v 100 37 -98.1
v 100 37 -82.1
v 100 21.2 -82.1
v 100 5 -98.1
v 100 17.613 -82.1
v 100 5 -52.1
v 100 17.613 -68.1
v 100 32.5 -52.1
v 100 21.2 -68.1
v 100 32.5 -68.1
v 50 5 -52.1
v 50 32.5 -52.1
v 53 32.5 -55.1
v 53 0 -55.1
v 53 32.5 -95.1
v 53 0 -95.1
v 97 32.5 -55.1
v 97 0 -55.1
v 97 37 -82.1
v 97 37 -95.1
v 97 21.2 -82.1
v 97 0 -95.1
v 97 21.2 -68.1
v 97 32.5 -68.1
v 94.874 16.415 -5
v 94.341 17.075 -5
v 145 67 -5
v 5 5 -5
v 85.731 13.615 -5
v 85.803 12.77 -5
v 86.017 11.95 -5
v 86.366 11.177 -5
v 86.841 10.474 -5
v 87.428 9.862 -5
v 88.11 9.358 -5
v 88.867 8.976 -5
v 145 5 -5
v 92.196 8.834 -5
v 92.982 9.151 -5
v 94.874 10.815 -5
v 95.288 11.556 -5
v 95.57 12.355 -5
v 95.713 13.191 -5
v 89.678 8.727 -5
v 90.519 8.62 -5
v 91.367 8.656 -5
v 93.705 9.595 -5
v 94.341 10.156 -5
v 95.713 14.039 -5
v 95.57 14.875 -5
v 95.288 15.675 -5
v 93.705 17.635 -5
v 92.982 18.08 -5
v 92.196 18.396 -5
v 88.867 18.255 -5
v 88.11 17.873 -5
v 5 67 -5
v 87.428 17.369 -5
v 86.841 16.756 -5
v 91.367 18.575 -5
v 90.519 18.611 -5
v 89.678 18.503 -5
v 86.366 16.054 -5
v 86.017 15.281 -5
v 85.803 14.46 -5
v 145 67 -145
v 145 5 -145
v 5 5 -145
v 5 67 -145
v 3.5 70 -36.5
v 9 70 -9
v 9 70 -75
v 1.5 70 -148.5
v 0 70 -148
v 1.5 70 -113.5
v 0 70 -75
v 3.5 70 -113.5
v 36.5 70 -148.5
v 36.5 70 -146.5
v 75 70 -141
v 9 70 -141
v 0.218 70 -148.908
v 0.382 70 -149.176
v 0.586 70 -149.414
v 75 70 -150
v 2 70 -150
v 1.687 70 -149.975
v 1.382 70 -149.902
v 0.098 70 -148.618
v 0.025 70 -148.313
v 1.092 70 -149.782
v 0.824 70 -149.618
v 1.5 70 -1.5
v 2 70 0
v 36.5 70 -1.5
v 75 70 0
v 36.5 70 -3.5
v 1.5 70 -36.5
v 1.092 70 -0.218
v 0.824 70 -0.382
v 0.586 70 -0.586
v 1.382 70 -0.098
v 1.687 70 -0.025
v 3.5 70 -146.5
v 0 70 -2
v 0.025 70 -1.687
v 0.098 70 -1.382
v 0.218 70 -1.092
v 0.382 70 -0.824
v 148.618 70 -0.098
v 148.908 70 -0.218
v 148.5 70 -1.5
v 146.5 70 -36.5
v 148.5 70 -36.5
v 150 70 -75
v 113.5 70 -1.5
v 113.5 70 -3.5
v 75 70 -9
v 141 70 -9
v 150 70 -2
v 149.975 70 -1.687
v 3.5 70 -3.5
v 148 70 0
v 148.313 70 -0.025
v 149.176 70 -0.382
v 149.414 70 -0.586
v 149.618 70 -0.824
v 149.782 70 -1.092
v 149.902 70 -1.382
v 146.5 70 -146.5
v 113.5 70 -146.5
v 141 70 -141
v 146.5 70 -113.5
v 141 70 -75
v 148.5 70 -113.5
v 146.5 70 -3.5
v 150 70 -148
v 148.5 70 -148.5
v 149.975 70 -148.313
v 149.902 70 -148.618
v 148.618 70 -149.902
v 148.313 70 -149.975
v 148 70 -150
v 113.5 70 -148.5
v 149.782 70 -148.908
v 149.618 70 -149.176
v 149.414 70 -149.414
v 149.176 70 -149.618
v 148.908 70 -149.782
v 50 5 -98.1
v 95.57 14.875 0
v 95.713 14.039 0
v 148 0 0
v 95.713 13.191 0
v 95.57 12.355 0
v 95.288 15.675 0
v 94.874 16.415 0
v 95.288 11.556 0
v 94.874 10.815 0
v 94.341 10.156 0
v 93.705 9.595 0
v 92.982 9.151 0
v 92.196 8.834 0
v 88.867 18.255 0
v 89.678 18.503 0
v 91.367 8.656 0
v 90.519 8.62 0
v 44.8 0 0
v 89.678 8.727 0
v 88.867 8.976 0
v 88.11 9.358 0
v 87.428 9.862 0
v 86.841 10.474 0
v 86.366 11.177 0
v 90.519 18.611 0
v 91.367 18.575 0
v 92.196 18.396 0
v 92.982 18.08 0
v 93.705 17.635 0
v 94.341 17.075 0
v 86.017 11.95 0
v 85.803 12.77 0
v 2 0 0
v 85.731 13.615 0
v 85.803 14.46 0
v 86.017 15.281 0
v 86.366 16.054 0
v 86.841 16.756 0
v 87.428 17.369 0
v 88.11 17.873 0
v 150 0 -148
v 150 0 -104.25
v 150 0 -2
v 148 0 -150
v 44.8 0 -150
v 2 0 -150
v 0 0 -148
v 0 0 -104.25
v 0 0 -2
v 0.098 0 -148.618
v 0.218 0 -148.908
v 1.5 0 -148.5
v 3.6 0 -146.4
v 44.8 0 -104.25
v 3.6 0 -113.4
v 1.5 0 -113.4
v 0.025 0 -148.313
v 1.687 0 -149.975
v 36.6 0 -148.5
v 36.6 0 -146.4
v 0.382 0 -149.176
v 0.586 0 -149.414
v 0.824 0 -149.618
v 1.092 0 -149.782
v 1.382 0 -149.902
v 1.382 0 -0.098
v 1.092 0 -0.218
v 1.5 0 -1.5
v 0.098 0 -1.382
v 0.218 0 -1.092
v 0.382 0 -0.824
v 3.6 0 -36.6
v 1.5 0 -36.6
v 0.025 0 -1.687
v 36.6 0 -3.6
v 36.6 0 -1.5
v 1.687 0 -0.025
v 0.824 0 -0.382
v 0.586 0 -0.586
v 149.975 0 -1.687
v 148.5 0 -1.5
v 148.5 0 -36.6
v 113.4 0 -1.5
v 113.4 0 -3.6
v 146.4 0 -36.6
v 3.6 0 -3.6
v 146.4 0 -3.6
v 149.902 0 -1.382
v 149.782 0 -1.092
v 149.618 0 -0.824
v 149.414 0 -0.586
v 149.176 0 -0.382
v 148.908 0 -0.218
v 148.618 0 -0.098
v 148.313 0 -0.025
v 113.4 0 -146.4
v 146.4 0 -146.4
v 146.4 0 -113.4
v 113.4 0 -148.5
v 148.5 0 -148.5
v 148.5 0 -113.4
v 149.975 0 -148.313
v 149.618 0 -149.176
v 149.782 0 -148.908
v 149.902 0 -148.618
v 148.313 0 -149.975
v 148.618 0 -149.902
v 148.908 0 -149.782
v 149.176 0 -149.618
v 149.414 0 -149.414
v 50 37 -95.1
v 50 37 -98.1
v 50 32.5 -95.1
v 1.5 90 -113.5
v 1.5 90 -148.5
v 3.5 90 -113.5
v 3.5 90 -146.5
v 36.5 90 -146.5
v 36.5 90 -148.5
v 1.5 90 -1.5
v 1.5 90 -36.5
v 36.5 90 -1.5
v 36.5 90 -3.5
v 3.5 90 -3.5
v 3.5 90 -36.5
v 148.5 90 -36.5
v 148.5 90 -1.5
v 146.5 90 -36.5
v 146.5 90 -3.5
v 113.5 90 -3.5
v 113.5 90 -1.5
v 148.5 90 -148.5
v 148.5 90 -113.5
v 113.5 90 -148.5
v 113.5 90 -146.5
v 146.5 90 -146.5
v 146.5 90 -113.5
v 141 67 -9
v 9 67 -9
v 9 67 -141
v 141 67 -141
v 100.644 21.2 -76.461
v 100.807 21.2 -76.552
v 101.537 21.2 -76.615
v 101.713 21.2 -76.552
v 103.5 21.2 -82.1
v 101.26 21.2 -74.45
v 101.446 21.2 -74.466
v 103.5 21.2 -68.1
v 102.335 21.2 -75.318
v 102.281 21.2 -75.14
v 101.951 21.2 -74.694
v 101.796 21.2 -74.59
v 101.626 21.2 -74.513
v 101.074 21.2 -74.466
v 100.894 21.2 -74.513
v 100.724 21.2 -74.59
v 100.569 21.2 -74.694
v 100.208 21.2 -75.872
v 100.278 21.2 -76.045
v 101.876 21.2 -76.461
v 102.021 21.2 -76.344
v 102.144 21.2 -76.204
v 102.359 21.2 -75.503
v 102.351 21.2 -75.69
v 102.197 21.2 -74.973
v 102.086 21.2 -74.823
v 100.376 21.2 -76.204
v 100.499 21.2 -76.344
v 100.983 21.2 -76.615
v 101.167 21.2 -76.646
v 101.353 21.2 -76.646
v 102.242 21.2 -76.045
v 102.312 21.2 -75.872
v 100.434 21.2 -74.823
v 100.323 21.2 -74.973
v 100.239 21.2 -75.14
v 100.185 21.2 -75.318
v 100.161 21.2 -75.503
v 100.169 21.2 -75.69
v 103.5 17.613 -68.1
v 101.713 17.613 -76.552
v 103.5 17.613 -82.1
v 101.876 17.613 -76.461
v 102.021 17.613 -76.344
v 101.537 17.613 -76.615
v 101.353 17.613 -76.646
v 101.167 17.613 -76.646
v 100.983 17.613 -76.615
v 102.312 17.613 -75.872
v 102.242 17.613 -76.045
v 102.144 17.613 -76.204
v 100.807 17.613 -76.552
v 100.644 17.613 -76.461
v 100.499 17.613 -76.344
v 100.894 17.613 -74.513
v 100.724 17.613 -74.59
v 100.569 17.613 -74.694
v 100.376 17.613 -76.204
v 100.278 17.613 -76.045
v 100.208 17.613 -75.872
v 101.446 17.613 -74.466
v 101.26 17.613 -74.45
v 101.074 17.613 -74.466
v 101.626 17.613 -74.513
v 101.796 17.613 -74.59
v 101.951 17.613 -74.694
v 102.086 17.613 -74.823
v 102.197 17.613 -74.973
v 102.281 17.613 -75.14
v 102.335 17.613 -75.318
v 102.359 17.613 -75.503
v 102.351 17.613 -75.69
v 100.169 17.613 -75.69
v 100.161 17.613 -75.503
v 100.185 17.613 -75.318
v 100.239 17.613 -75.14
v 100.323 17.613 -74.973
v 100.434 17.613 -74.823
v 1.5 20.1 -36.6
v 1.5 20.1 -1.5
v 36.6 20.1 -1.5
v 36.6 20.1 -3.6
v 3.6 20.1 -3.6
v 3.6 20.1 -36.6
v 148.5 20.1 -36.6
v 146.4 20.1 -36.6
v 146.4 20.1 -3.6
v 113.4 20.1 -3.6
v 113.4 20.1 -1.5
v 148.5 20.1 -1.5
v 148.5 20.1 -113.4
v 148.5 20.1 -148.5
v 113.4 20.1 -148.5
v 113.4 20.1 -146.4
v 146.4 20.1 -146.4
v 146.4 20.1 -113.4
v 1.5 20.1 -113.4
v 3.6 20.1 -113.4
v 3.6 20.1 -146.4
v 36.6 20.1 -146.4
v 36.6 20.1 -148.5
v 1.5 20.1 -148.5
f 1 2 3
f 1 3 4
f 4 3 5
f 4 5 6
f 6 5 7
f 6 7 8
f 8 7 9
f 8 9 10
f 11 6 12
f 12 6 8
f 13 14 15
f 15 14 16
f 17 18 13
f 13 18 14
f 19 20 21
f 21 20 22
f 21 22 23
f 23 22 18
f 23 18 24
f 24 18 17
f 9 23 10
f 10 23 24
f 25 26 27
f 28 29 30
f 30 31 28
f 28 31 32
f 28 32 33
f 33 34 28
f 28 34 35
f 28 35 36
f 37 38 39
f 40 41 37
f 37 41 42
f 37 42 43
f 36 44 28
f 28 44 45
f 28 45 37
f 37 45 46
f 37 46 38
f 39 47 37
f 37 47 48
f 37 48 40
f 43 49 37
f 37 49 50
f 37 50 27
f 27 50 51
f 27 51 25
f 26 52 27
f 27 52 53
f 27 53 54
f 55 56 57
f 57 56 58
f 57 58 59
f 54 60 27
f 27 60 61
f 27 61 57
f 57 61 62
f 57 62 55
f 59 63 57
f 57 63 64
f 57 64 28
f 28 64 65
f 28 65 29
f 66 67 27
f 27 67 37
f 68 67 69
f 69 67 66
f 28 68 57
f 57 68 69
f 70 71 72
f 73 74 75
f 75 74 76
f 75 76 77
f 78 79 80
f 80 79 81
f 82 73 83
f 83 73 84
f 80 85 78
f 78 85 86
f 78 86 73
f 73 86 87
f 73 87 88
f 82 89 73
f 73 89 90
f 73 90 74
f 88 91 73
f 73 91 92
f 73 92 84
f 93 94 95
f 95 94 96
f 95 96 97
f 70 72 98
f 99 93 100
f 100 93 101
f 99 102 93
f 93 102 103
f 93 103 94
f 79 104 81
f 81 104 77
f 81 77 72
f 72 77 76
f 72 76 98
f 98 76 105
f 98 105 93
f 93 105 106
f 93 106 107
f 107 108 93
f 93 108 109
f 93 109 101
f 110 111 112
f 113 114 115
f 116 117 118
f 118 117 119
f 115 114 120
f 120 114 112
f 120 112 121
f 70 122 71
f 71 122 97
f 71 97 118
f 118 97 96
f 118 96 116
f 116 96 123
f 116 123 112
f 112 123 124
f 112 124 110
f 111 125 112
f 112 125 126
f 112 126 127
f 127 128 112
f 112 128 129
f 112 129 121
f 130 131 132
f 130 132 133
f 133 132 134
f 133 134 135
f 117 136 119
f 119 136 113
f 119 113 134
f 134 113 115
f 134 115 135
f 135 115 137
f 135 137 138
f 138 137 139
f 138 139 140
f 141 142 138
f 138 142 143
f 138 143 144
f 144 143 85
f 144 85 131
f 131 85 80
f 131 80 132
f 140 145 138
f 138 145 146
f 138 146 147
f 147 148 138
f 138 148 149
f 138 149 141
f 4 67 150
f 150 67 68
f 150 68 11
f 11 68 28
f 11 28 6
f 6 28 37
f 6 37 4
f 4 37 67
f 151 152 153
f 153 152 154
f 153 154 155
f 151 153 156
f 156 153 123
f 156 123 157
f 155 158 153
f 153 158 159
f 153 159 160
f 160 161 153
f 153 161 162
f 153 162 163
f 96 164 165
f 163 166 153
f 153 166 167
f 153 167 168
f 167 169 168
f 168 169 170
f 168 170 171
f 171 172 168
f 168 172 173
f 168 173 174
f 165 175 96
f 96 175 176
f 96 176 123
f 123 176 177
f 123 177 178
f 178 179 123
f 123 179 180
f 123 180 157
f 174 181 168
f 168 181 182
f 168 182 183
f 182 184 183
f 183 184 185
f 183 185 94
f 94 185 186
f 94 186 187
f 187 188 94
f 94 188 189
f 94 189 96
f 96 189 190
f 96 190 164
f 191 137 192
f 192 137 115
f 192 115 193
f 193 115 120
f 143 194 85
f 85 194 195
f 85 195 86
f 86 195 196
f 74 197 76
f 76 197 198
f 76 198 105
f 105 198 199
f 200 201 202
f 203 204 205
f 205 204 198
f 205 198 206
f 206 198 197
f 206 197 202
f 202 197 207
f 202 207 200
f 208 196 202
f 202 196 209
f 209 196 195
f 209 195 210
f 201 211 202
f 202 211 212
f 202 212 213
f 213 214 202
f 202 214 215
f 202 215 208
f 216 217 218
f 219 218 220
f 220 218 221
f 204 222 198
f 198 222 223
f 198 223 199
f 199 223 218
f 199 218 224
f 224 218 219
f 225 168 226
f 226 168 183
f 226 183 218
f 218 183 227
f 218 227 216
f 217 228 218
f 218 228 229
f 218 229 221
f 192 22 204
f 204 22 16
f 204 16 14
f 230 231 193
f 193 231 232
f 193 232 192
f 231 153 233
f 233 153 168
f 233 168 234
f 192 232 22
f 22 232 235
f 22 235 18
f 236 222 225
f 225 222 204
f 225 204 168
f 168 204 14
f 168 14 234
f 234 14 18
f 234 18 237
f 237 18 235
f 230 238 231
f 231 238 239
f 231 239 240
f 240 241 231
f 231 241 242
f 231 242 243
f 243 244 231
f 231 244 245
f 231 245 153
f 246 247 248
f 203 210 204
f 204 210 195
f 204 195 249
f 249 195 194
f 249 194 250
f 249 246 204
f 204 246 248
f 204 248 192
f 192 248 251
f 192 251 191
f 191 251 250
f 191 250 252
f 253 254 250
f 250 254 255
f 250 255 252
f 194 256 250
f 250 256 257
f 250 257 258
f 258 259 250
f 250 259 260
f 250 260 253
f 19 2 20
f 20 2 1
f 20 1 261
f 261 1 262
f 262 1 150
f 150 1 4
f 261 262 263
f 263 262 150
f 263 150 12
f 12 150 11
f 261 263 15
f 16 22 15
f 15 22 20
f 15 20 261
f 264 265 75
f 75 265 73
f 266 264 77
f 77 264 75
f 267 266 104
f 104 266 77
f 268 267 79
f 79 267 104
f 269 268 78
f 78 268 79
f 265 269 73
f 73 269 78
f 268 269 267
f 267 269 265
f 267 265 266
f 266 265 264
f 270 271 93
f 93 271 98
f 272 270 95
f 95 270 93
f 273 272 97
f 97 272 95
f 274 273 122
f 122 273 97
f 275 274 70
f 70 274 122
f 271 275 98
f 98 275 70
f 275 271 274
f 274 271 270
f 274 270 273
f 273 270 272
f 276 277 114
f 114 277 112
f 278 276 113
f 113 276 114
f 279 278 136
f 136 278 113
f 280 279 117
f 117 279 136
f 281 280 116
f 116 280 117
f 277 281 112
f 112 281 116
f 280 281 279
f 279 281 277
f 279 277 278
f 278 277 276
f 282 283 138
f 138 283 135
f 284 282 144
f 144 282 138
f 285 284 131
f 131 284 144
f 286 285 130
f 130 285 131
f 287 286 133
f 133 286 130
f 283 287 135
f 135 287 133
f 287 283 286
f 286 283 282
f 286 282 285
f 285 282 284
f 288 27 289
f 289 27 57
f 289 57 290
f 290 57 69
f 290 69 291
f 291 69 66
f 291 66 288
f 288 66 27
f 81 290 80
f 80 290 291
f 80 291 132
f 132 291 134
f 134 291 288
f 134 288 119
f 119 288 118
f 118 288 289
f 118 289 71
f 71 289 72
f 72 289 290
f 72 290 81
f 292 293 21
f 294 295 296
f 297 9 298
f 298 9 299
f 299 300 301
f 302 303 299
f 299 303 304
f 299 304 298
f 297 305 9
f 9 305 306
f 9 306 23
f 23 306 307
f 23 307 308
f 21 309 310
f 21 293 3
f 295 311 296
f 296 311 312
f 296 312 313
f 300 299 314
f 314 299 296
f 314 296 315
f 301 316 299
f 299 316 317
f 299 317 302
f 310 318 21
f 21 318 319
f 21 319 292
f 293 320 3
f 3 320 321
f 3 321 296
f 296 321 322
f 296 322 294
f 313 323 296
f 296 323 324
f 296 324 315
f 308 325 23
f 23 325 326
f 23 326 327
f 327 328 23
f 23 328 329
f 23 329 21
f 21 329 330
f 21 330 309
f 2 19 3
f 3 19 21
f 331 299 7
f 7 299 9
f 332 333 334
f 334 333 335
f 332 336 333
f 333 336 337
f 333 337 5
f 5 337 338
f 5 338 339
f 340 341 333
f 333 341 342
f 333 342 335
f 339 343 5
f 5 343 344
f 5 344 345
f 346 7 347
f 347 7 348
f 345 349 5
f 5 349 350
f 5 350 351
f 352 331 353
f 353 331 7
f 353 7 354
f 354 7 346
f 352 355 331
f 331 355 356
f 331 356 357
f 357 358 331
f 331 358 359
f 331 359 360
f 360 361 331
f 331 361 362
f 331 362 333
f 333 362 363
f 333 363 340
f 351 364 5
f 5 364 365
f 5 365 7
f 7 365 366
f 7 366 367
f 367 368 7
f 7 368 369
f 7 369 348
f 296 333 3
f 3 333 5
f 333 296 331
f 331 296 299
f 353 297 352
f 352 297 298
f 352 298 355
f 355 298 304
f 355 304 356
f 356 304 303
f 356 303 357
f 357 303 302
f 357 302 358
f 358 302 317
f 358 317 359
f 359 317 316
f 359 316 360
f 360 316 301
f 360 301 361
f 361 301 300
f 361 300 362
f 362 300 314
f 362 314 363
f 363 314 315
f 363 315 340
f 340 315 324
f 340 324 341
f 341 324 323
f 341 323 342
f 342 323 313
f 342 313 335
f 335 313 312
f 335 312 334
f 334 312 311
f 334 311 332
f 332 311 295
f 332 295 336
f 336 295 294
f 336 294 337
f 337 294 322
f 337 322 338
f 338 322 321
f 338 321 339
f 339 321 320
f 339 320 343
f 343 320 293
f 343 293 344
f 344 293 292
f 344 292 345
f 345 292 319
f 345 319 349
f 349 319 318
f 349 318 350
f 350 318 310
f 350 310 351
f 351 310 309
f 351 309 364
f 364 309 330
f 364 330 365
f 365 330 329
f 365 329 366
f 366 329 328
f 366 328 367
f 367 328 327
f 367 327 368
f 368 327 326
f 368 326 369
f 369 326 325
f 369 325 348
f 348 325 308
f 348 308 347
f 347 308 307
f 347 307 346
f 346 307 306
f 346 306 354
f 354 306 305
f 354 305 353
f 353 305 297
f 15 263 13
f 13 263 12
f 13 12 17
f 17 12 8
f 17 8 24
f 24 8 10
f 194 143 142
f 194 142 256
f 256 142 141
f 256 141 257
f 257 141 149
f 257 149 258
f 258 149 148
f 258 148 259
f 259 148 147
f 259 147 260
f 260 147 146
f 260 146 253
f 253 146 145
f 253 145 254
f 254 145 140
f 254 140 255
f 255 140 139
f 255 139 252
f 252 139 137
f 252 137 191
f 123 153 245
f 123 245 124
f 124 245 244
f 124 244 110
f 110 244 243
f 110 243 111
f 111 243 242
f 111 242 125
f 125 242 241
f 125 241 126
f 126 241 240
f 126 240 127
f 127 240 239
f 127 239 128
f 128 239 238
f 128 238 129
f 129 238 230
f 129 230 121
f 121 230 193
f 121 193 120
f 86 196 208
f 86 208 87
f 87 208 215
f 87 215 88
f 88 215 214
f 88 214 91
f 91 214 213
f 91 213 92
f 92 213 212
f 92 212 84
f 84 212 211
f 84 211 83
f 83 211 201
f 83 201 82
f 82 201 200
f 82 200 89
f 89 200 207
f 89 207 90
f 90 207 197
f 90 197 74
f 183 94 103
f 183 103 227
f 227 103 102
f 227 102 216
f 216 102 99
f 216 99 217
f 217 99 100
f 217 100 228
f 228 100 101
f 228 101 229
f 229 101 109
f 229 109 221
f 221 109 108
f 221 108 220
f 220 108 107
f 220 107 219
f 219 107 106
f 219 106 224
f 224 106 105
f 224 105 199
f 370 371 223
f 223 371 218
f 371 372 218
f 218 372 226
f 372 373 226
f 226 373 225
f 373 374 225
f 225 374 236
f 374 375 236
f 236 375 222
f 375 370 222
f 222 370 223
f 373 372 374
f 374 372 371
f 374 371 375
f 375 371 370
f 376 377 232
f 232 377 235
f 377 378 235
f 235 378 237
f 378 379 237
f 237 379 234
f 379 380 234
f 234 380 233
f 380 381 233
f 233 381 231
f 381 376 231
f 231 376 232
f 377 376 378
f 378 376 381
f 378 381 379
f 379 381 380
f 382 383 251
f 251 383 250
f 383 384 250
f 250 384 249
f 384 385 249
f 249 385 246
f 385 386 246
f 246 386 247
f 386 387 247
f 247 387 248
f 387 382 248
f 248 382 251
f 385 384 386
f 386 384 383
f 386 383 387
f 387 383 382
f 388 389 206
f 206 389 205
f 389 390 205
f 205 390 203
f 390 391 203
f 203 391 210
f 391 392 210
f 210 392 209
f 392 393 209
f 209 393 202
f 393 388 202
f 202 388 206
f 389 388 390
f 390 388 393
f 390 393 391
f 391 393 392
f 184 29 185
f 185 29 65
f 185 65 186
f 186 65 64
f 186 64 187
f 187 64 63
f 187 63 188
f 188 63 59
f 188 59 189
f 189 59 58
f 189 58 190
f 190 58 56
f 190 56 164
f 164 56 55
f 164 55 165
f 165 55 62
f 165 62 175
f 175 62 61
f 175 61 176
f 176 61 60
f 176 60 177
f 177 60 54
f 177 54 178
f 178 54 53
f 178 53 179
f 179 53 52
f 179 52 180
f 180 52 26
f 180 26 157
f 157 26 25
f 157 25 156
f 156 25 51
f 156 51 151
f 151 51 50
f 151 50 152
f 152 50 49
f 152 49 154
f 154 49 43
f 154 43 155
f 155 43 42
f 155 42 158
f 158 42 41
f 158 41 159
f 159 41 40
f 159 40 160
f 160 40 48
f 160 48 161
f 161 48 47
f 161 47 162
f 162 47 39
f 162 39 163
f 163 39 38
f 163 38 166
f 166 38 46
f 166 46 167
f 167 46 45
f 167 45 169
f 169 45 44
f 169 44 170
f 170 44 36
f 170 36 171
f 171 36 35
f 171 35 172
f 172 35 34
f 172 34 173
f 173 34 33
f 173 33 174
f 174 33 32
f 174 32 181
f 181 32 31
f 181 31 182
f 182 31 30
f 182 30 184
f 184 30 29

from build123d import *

# Parameters (mm, degrees)
SKETCH1_W           = 150
SKETCH1_H           = 150
BOSS_EXTRUDE1_DEPTH = 70
SHELL1_T            = -5
SKETCH2_W           = 50
SKETCH2_H           = 46
SKETCH2_W_2         = 44
SKETCH2_H_2         = 40
BOSS_EXTRUDE2_DEPTH = 32
CUT_EXTRUDE4_REACH  = 223.867
SKETCH5_W           = 44
SKETCH5_H           = 40
BOSS_EXTRUDE3_DEPTH = 20
SKETCH7_W           = 140
SKETCH7_H           = 140
SKETCH7_W_2         = 132
SKETCH7_H_2         = 132
BOSS_EXTRUDE4_DEPTH = 3
CUT_EXTRUDE5_REACH  = 203.494
SKETCH9_W           = 14
SKETCH9_H           = 15.8
SKETCH10_W          = 14
SKETCH10_H          = 3.5874966
BOSS_EXTRUDE5_DEPTH = 3.5
CUT_EXTRUDE6_REACH  = 225.01
SKETCH11_R          = 1.1
CUT_EXTRUDE8_DEPTH  = 4.5
FILLET1_R           = 2
CUT_EXTRUDE9_DEPTH  = 20.1
SKETCH14_R          = 5
CUT_EXTRUDE11_DEPTH = 20.1


with BuildPart() as part:
    # Sketch1 → Boss-Extrude1 (new body)
    with BuildSketch(Plane(origin=(0, 0, 0), x_dir=(1, 0, 0), z_dir=(0, 1, 0))):
        with Locations((75, 75)):
            Rectangle(SKETCH1_W, SKETCH1_H)
    extrude(amount=BOSS_EXTRUDE1_DEPTH)

    # Shell1
    shell1_openings = [part.faces().sort_by_distance(p)[0] for p in [
        (75, 70, -75),
    ]]
    offset(amount=SHELL1_T, openings=shell1_openings, kind=Kind.INTERSECTION)

    # Sketch2 → Boss-Extrude2 (add)
    with BuildSketch(Plane(origin=(0, 5, 0), x_dir=(1, 0, 0), z_dir=(0, 1, 0))):
        with Locations((75, 75.1)):
            Rectangle(SKETCH2_W, SKETCH2_H)
        with Locations((75, 75.1)):
            Rectangle(SKETCH2_W_2, SKETCH2_H_2, mode=Mode.SUBTRACT)
    extrude(amount=BOSS_EXTRUDE2_DEPTH)

    # Sketch5 → Cut-Extrude4 (cut, up to next)
    with BuildSketch(Plane(origin=(0, 5, 0), x_dir=(1, 0, 0), z_dir=(0, 1, 0)), mode=Mode.PRIVATE) as cut_extrude4_sk1:
        with Locations((75, 75.1)):
            Rectangle(SKETCH5_W, SKETCH5_H)
    cut_extrude4_tool1 = extrude(cut_extrude4_sk1.sketch, amount=-CUT_EXTRUDE4_REACH, mode=Mode.PRIVATE) & part.part
    add(cut_extrude4_tool1.solids().sort_by_distance((75, 5, -75.1))[0], mode=Mode.SUBTRACT)

    # Sketch6 → Boss-Extrude3 (add)
    with BuildSketch(Plane(origin=(0, 70, 0), x_dir=(1, 0, 0), z_dir=(0, 1, 0))):
        Polygon((1.5, 113.5), (1.5, 148.5), (36.5, 148.5), (36.5, 146.5), (3.5, 146.5), (3.5, 113.5), align=None)
        Polygon((1.5, 36.5), (1.5, 1.5), (36.5, 1.5), (36.5, 3.5), (3.5, 3.5), (3.5, 36.5), align=None)
        Polygon((148.5, 36.5), (148.5, 1.5), (113.5, 1.5), (113.5, 3.5), (146.5, 3.5), (146.5, 36.5), align=None)
        Polygon((148.5, 113.5), (148.5, 148.5), (113.5, 148.5), (113.5, 146.5), (146.5, 146.5), (146.5, 113.5), align=None)
    extrude(amount=BOSS_EXTRUDE3_DEPTH)

    # Sketch7 → Boss-Extrude4 (add)
    with BuildSketch(Plane(origin=(0, 70, 0), x_dir=(1, 0, 0), z_dir=(0, 1, 0))):
        with Locations((75, 75)):
            Rectangle(SKETCH7_W, SKETCH7_H)
        with Locations((75, 75)):
            Rectangle(SKETCH7_W_2, SKETCH7_H_2, mode=Mode.SUBTRACT)
    extrude(amount=-BOSS_EXTRUDE4_DEPTH)

    # Sketch9 → Cut-Extrude5 (cut, up to next)
    with BuildSketch(Plane(origin=(100, 0, 0), x_dir=(0, 0, -1), z_dir=(1, 0, 0)), mode=Mode.PRIVATE) as cut_extrude5_sk1:
        with Locations((75.1, 29.1)):
            Rectangle(SKETCH9_W, SKETCH9_H)
    cut_extrude5_tool1 = extrude(cut_extrude5_sk1.sketch, amount=-CUT_EXTRUDE5_REACH, mode=Mode.PRIVATE) & part.part
    add(cut_extrude5_tool1.solids().sort_by_distance((100, 29.1, -75.1))[0], mode=Mode.SUBTRACT)

    # Sketch10 → Boss-Extrude5 (add)
    with BuildSketch(Plane(origin=(100, 0, 0), x_dir=(0, 0, -1), z_dir=(1, 0, 0))):
        with Locations((75.1, 19.4062517)):
            Rectangle(SKETCH10_W, SKETCH10_H)
    extrude(amount=BOSS_EXTRUDE5_DEPTH)

    # Sketch11 → Cut-Extrude6 (cut, up to next)
    with BuildSketch(Plane(origin=(0, 21.2, 0), x_dir=(1, 0, 0), z_dir=(0, 1, 0)), mode=Mode.PRIVATE) as cut_extrude6_sk1:
        with Locations(Location((101.26, 75.55, 0), (0, 0, 270))):
            Circle(SKETCH11_R)
    cut_extrude6_tool1 = extrude(cut_extrude6_sk1.sketch, amount=-CUT_EXTRUDE6_REACH, mode=Mode.PRIVATE) & part.part
    add(cut_extrude6_tool1.solids().sort_by_distance((101.26, 21.2, -75.55))[0], mode=Mode.SUBTRACT)

    # Sketch12 → Cut-Extrude8 (cut)
    with BuildSketch(Plane(origin=(0, 37, 0), x_dir=(1, 0, 0), z_dir=(0, 1, 0))):
        Polygon((53, 95.1), (50, 95.1), (50, 52.1), (100, 52.1), (100, 68.1), (97, 68.1), (97, 55.1), (53, 55.1), align=None)
    extrude(amount=-CUT_EXTRUDE8_DEPTH, mode=Mode.SUBTRACT)

    # Fillet1
    fillet1_edges = [part.edges().sort_by_distance(p)[0] for p in [
        (0, 35, 0),
        (0, 35, -150),
        (150, 35, -150),
        (150, 35, 0),
    ]]
    fillet(fillet1_edges, radius=FILLET1_R)

    # Sketch13 → Cut-Extrude9 (cut)
    with BuildSketch(Plane.XZ):
        Polygon((1.5, -1.5), (36.6, -1.5), (36.6, -3.6), (3.6, -3.6), (3.6, -36.6), (1.5, -36.6), align=None)
        Polygon((148.5, -36.6), (148.5, -1.5), (113.4, -1.5), (113.4, -3.6), (146.4, -3.6), (146.4, -36.6), align=None)
        Polygon((148.5, -148.5), (113.4, -148.5), (113.4, -146.4), (146.4, -146.4), (146.4, -113.4), (148.5, -113.4), align=None)
        Polygon((1.5, -113.4), (1.5, -148.5), (36.6, -148.5), (36.6, -146.4), (3.6, -146.4), (3.6, -113.4), align=None)
    extrude(amount=-CUT_EXTRUDE9_DEPTH, mode=Mode.SUBTRACT)

    # Sketch14 → Cut-Extrude11 (cut)
    with BuildSketch(Plane(origin=(0, 0, -5), x_dir=(-1, 0, 0), z_dir=(0, 0, -1))):
        with Locations((-90.731434744, 13.61525696)):
            Circle(SKETCH14_R)
    extrude(amount=-CUT_EXTRUDE11_DEPTH, mode=Mode.SUBTRACT)


solid = part.part
